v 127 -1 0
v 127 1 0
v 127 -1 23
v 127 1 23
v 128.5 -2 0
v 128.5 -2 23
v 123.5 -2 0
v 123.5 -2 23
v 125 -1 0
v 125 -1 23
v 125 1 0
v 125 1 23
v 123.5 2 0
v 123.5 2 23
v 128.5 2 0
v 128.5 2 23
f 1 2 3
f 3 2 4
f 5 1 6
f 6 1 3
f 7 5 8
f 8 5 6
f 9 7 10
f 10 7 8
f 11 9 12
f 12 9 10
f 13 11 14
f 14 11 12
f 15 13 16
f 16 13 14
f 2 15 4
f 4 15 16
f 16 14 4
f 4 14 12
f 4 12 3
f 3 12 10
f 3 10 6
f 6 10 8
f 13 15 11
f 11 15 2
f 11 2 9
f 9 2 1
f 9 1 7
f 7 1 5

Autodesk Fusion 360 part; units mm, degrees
sketch "Sketch1" plane through (0, 0, 0) normal (0, 0, 1) x (1, 0, 0)
  line L0 (125, 0) -> (125, 1)
  line L1 (127, 0) -> (127, 1)
  line L2 (125, 0) -> (127, 0)
  line L3 (126, 0) -> (126, 2) construction
  line L4 (123.5, 2) -> (128.5, 2)
  line L5 (123.5, 2) -> (125, 1)
  line L6 (127, 1) -> (128.5, 2)
  line L7 (125, 0) -> (125, -1)
  line L8 (123.5, -2) -> (125, -1)
  line L9 (123.5, -2) -> (128.5, -2)
  line L10 (127, -1) -> (128.5, -2)
  line L11 (127, 0) -> (127, -1)
  line L12 (125, 0) -> (127, 0)
  dimension "d759" = 1
  dimension "d760" = 1
  dimension "d761" = 2
  dimension "d763" = 2
  dimension "d764" = 5
extrude "Extrude1" add sketch "Sketch1" along normal blind 23
